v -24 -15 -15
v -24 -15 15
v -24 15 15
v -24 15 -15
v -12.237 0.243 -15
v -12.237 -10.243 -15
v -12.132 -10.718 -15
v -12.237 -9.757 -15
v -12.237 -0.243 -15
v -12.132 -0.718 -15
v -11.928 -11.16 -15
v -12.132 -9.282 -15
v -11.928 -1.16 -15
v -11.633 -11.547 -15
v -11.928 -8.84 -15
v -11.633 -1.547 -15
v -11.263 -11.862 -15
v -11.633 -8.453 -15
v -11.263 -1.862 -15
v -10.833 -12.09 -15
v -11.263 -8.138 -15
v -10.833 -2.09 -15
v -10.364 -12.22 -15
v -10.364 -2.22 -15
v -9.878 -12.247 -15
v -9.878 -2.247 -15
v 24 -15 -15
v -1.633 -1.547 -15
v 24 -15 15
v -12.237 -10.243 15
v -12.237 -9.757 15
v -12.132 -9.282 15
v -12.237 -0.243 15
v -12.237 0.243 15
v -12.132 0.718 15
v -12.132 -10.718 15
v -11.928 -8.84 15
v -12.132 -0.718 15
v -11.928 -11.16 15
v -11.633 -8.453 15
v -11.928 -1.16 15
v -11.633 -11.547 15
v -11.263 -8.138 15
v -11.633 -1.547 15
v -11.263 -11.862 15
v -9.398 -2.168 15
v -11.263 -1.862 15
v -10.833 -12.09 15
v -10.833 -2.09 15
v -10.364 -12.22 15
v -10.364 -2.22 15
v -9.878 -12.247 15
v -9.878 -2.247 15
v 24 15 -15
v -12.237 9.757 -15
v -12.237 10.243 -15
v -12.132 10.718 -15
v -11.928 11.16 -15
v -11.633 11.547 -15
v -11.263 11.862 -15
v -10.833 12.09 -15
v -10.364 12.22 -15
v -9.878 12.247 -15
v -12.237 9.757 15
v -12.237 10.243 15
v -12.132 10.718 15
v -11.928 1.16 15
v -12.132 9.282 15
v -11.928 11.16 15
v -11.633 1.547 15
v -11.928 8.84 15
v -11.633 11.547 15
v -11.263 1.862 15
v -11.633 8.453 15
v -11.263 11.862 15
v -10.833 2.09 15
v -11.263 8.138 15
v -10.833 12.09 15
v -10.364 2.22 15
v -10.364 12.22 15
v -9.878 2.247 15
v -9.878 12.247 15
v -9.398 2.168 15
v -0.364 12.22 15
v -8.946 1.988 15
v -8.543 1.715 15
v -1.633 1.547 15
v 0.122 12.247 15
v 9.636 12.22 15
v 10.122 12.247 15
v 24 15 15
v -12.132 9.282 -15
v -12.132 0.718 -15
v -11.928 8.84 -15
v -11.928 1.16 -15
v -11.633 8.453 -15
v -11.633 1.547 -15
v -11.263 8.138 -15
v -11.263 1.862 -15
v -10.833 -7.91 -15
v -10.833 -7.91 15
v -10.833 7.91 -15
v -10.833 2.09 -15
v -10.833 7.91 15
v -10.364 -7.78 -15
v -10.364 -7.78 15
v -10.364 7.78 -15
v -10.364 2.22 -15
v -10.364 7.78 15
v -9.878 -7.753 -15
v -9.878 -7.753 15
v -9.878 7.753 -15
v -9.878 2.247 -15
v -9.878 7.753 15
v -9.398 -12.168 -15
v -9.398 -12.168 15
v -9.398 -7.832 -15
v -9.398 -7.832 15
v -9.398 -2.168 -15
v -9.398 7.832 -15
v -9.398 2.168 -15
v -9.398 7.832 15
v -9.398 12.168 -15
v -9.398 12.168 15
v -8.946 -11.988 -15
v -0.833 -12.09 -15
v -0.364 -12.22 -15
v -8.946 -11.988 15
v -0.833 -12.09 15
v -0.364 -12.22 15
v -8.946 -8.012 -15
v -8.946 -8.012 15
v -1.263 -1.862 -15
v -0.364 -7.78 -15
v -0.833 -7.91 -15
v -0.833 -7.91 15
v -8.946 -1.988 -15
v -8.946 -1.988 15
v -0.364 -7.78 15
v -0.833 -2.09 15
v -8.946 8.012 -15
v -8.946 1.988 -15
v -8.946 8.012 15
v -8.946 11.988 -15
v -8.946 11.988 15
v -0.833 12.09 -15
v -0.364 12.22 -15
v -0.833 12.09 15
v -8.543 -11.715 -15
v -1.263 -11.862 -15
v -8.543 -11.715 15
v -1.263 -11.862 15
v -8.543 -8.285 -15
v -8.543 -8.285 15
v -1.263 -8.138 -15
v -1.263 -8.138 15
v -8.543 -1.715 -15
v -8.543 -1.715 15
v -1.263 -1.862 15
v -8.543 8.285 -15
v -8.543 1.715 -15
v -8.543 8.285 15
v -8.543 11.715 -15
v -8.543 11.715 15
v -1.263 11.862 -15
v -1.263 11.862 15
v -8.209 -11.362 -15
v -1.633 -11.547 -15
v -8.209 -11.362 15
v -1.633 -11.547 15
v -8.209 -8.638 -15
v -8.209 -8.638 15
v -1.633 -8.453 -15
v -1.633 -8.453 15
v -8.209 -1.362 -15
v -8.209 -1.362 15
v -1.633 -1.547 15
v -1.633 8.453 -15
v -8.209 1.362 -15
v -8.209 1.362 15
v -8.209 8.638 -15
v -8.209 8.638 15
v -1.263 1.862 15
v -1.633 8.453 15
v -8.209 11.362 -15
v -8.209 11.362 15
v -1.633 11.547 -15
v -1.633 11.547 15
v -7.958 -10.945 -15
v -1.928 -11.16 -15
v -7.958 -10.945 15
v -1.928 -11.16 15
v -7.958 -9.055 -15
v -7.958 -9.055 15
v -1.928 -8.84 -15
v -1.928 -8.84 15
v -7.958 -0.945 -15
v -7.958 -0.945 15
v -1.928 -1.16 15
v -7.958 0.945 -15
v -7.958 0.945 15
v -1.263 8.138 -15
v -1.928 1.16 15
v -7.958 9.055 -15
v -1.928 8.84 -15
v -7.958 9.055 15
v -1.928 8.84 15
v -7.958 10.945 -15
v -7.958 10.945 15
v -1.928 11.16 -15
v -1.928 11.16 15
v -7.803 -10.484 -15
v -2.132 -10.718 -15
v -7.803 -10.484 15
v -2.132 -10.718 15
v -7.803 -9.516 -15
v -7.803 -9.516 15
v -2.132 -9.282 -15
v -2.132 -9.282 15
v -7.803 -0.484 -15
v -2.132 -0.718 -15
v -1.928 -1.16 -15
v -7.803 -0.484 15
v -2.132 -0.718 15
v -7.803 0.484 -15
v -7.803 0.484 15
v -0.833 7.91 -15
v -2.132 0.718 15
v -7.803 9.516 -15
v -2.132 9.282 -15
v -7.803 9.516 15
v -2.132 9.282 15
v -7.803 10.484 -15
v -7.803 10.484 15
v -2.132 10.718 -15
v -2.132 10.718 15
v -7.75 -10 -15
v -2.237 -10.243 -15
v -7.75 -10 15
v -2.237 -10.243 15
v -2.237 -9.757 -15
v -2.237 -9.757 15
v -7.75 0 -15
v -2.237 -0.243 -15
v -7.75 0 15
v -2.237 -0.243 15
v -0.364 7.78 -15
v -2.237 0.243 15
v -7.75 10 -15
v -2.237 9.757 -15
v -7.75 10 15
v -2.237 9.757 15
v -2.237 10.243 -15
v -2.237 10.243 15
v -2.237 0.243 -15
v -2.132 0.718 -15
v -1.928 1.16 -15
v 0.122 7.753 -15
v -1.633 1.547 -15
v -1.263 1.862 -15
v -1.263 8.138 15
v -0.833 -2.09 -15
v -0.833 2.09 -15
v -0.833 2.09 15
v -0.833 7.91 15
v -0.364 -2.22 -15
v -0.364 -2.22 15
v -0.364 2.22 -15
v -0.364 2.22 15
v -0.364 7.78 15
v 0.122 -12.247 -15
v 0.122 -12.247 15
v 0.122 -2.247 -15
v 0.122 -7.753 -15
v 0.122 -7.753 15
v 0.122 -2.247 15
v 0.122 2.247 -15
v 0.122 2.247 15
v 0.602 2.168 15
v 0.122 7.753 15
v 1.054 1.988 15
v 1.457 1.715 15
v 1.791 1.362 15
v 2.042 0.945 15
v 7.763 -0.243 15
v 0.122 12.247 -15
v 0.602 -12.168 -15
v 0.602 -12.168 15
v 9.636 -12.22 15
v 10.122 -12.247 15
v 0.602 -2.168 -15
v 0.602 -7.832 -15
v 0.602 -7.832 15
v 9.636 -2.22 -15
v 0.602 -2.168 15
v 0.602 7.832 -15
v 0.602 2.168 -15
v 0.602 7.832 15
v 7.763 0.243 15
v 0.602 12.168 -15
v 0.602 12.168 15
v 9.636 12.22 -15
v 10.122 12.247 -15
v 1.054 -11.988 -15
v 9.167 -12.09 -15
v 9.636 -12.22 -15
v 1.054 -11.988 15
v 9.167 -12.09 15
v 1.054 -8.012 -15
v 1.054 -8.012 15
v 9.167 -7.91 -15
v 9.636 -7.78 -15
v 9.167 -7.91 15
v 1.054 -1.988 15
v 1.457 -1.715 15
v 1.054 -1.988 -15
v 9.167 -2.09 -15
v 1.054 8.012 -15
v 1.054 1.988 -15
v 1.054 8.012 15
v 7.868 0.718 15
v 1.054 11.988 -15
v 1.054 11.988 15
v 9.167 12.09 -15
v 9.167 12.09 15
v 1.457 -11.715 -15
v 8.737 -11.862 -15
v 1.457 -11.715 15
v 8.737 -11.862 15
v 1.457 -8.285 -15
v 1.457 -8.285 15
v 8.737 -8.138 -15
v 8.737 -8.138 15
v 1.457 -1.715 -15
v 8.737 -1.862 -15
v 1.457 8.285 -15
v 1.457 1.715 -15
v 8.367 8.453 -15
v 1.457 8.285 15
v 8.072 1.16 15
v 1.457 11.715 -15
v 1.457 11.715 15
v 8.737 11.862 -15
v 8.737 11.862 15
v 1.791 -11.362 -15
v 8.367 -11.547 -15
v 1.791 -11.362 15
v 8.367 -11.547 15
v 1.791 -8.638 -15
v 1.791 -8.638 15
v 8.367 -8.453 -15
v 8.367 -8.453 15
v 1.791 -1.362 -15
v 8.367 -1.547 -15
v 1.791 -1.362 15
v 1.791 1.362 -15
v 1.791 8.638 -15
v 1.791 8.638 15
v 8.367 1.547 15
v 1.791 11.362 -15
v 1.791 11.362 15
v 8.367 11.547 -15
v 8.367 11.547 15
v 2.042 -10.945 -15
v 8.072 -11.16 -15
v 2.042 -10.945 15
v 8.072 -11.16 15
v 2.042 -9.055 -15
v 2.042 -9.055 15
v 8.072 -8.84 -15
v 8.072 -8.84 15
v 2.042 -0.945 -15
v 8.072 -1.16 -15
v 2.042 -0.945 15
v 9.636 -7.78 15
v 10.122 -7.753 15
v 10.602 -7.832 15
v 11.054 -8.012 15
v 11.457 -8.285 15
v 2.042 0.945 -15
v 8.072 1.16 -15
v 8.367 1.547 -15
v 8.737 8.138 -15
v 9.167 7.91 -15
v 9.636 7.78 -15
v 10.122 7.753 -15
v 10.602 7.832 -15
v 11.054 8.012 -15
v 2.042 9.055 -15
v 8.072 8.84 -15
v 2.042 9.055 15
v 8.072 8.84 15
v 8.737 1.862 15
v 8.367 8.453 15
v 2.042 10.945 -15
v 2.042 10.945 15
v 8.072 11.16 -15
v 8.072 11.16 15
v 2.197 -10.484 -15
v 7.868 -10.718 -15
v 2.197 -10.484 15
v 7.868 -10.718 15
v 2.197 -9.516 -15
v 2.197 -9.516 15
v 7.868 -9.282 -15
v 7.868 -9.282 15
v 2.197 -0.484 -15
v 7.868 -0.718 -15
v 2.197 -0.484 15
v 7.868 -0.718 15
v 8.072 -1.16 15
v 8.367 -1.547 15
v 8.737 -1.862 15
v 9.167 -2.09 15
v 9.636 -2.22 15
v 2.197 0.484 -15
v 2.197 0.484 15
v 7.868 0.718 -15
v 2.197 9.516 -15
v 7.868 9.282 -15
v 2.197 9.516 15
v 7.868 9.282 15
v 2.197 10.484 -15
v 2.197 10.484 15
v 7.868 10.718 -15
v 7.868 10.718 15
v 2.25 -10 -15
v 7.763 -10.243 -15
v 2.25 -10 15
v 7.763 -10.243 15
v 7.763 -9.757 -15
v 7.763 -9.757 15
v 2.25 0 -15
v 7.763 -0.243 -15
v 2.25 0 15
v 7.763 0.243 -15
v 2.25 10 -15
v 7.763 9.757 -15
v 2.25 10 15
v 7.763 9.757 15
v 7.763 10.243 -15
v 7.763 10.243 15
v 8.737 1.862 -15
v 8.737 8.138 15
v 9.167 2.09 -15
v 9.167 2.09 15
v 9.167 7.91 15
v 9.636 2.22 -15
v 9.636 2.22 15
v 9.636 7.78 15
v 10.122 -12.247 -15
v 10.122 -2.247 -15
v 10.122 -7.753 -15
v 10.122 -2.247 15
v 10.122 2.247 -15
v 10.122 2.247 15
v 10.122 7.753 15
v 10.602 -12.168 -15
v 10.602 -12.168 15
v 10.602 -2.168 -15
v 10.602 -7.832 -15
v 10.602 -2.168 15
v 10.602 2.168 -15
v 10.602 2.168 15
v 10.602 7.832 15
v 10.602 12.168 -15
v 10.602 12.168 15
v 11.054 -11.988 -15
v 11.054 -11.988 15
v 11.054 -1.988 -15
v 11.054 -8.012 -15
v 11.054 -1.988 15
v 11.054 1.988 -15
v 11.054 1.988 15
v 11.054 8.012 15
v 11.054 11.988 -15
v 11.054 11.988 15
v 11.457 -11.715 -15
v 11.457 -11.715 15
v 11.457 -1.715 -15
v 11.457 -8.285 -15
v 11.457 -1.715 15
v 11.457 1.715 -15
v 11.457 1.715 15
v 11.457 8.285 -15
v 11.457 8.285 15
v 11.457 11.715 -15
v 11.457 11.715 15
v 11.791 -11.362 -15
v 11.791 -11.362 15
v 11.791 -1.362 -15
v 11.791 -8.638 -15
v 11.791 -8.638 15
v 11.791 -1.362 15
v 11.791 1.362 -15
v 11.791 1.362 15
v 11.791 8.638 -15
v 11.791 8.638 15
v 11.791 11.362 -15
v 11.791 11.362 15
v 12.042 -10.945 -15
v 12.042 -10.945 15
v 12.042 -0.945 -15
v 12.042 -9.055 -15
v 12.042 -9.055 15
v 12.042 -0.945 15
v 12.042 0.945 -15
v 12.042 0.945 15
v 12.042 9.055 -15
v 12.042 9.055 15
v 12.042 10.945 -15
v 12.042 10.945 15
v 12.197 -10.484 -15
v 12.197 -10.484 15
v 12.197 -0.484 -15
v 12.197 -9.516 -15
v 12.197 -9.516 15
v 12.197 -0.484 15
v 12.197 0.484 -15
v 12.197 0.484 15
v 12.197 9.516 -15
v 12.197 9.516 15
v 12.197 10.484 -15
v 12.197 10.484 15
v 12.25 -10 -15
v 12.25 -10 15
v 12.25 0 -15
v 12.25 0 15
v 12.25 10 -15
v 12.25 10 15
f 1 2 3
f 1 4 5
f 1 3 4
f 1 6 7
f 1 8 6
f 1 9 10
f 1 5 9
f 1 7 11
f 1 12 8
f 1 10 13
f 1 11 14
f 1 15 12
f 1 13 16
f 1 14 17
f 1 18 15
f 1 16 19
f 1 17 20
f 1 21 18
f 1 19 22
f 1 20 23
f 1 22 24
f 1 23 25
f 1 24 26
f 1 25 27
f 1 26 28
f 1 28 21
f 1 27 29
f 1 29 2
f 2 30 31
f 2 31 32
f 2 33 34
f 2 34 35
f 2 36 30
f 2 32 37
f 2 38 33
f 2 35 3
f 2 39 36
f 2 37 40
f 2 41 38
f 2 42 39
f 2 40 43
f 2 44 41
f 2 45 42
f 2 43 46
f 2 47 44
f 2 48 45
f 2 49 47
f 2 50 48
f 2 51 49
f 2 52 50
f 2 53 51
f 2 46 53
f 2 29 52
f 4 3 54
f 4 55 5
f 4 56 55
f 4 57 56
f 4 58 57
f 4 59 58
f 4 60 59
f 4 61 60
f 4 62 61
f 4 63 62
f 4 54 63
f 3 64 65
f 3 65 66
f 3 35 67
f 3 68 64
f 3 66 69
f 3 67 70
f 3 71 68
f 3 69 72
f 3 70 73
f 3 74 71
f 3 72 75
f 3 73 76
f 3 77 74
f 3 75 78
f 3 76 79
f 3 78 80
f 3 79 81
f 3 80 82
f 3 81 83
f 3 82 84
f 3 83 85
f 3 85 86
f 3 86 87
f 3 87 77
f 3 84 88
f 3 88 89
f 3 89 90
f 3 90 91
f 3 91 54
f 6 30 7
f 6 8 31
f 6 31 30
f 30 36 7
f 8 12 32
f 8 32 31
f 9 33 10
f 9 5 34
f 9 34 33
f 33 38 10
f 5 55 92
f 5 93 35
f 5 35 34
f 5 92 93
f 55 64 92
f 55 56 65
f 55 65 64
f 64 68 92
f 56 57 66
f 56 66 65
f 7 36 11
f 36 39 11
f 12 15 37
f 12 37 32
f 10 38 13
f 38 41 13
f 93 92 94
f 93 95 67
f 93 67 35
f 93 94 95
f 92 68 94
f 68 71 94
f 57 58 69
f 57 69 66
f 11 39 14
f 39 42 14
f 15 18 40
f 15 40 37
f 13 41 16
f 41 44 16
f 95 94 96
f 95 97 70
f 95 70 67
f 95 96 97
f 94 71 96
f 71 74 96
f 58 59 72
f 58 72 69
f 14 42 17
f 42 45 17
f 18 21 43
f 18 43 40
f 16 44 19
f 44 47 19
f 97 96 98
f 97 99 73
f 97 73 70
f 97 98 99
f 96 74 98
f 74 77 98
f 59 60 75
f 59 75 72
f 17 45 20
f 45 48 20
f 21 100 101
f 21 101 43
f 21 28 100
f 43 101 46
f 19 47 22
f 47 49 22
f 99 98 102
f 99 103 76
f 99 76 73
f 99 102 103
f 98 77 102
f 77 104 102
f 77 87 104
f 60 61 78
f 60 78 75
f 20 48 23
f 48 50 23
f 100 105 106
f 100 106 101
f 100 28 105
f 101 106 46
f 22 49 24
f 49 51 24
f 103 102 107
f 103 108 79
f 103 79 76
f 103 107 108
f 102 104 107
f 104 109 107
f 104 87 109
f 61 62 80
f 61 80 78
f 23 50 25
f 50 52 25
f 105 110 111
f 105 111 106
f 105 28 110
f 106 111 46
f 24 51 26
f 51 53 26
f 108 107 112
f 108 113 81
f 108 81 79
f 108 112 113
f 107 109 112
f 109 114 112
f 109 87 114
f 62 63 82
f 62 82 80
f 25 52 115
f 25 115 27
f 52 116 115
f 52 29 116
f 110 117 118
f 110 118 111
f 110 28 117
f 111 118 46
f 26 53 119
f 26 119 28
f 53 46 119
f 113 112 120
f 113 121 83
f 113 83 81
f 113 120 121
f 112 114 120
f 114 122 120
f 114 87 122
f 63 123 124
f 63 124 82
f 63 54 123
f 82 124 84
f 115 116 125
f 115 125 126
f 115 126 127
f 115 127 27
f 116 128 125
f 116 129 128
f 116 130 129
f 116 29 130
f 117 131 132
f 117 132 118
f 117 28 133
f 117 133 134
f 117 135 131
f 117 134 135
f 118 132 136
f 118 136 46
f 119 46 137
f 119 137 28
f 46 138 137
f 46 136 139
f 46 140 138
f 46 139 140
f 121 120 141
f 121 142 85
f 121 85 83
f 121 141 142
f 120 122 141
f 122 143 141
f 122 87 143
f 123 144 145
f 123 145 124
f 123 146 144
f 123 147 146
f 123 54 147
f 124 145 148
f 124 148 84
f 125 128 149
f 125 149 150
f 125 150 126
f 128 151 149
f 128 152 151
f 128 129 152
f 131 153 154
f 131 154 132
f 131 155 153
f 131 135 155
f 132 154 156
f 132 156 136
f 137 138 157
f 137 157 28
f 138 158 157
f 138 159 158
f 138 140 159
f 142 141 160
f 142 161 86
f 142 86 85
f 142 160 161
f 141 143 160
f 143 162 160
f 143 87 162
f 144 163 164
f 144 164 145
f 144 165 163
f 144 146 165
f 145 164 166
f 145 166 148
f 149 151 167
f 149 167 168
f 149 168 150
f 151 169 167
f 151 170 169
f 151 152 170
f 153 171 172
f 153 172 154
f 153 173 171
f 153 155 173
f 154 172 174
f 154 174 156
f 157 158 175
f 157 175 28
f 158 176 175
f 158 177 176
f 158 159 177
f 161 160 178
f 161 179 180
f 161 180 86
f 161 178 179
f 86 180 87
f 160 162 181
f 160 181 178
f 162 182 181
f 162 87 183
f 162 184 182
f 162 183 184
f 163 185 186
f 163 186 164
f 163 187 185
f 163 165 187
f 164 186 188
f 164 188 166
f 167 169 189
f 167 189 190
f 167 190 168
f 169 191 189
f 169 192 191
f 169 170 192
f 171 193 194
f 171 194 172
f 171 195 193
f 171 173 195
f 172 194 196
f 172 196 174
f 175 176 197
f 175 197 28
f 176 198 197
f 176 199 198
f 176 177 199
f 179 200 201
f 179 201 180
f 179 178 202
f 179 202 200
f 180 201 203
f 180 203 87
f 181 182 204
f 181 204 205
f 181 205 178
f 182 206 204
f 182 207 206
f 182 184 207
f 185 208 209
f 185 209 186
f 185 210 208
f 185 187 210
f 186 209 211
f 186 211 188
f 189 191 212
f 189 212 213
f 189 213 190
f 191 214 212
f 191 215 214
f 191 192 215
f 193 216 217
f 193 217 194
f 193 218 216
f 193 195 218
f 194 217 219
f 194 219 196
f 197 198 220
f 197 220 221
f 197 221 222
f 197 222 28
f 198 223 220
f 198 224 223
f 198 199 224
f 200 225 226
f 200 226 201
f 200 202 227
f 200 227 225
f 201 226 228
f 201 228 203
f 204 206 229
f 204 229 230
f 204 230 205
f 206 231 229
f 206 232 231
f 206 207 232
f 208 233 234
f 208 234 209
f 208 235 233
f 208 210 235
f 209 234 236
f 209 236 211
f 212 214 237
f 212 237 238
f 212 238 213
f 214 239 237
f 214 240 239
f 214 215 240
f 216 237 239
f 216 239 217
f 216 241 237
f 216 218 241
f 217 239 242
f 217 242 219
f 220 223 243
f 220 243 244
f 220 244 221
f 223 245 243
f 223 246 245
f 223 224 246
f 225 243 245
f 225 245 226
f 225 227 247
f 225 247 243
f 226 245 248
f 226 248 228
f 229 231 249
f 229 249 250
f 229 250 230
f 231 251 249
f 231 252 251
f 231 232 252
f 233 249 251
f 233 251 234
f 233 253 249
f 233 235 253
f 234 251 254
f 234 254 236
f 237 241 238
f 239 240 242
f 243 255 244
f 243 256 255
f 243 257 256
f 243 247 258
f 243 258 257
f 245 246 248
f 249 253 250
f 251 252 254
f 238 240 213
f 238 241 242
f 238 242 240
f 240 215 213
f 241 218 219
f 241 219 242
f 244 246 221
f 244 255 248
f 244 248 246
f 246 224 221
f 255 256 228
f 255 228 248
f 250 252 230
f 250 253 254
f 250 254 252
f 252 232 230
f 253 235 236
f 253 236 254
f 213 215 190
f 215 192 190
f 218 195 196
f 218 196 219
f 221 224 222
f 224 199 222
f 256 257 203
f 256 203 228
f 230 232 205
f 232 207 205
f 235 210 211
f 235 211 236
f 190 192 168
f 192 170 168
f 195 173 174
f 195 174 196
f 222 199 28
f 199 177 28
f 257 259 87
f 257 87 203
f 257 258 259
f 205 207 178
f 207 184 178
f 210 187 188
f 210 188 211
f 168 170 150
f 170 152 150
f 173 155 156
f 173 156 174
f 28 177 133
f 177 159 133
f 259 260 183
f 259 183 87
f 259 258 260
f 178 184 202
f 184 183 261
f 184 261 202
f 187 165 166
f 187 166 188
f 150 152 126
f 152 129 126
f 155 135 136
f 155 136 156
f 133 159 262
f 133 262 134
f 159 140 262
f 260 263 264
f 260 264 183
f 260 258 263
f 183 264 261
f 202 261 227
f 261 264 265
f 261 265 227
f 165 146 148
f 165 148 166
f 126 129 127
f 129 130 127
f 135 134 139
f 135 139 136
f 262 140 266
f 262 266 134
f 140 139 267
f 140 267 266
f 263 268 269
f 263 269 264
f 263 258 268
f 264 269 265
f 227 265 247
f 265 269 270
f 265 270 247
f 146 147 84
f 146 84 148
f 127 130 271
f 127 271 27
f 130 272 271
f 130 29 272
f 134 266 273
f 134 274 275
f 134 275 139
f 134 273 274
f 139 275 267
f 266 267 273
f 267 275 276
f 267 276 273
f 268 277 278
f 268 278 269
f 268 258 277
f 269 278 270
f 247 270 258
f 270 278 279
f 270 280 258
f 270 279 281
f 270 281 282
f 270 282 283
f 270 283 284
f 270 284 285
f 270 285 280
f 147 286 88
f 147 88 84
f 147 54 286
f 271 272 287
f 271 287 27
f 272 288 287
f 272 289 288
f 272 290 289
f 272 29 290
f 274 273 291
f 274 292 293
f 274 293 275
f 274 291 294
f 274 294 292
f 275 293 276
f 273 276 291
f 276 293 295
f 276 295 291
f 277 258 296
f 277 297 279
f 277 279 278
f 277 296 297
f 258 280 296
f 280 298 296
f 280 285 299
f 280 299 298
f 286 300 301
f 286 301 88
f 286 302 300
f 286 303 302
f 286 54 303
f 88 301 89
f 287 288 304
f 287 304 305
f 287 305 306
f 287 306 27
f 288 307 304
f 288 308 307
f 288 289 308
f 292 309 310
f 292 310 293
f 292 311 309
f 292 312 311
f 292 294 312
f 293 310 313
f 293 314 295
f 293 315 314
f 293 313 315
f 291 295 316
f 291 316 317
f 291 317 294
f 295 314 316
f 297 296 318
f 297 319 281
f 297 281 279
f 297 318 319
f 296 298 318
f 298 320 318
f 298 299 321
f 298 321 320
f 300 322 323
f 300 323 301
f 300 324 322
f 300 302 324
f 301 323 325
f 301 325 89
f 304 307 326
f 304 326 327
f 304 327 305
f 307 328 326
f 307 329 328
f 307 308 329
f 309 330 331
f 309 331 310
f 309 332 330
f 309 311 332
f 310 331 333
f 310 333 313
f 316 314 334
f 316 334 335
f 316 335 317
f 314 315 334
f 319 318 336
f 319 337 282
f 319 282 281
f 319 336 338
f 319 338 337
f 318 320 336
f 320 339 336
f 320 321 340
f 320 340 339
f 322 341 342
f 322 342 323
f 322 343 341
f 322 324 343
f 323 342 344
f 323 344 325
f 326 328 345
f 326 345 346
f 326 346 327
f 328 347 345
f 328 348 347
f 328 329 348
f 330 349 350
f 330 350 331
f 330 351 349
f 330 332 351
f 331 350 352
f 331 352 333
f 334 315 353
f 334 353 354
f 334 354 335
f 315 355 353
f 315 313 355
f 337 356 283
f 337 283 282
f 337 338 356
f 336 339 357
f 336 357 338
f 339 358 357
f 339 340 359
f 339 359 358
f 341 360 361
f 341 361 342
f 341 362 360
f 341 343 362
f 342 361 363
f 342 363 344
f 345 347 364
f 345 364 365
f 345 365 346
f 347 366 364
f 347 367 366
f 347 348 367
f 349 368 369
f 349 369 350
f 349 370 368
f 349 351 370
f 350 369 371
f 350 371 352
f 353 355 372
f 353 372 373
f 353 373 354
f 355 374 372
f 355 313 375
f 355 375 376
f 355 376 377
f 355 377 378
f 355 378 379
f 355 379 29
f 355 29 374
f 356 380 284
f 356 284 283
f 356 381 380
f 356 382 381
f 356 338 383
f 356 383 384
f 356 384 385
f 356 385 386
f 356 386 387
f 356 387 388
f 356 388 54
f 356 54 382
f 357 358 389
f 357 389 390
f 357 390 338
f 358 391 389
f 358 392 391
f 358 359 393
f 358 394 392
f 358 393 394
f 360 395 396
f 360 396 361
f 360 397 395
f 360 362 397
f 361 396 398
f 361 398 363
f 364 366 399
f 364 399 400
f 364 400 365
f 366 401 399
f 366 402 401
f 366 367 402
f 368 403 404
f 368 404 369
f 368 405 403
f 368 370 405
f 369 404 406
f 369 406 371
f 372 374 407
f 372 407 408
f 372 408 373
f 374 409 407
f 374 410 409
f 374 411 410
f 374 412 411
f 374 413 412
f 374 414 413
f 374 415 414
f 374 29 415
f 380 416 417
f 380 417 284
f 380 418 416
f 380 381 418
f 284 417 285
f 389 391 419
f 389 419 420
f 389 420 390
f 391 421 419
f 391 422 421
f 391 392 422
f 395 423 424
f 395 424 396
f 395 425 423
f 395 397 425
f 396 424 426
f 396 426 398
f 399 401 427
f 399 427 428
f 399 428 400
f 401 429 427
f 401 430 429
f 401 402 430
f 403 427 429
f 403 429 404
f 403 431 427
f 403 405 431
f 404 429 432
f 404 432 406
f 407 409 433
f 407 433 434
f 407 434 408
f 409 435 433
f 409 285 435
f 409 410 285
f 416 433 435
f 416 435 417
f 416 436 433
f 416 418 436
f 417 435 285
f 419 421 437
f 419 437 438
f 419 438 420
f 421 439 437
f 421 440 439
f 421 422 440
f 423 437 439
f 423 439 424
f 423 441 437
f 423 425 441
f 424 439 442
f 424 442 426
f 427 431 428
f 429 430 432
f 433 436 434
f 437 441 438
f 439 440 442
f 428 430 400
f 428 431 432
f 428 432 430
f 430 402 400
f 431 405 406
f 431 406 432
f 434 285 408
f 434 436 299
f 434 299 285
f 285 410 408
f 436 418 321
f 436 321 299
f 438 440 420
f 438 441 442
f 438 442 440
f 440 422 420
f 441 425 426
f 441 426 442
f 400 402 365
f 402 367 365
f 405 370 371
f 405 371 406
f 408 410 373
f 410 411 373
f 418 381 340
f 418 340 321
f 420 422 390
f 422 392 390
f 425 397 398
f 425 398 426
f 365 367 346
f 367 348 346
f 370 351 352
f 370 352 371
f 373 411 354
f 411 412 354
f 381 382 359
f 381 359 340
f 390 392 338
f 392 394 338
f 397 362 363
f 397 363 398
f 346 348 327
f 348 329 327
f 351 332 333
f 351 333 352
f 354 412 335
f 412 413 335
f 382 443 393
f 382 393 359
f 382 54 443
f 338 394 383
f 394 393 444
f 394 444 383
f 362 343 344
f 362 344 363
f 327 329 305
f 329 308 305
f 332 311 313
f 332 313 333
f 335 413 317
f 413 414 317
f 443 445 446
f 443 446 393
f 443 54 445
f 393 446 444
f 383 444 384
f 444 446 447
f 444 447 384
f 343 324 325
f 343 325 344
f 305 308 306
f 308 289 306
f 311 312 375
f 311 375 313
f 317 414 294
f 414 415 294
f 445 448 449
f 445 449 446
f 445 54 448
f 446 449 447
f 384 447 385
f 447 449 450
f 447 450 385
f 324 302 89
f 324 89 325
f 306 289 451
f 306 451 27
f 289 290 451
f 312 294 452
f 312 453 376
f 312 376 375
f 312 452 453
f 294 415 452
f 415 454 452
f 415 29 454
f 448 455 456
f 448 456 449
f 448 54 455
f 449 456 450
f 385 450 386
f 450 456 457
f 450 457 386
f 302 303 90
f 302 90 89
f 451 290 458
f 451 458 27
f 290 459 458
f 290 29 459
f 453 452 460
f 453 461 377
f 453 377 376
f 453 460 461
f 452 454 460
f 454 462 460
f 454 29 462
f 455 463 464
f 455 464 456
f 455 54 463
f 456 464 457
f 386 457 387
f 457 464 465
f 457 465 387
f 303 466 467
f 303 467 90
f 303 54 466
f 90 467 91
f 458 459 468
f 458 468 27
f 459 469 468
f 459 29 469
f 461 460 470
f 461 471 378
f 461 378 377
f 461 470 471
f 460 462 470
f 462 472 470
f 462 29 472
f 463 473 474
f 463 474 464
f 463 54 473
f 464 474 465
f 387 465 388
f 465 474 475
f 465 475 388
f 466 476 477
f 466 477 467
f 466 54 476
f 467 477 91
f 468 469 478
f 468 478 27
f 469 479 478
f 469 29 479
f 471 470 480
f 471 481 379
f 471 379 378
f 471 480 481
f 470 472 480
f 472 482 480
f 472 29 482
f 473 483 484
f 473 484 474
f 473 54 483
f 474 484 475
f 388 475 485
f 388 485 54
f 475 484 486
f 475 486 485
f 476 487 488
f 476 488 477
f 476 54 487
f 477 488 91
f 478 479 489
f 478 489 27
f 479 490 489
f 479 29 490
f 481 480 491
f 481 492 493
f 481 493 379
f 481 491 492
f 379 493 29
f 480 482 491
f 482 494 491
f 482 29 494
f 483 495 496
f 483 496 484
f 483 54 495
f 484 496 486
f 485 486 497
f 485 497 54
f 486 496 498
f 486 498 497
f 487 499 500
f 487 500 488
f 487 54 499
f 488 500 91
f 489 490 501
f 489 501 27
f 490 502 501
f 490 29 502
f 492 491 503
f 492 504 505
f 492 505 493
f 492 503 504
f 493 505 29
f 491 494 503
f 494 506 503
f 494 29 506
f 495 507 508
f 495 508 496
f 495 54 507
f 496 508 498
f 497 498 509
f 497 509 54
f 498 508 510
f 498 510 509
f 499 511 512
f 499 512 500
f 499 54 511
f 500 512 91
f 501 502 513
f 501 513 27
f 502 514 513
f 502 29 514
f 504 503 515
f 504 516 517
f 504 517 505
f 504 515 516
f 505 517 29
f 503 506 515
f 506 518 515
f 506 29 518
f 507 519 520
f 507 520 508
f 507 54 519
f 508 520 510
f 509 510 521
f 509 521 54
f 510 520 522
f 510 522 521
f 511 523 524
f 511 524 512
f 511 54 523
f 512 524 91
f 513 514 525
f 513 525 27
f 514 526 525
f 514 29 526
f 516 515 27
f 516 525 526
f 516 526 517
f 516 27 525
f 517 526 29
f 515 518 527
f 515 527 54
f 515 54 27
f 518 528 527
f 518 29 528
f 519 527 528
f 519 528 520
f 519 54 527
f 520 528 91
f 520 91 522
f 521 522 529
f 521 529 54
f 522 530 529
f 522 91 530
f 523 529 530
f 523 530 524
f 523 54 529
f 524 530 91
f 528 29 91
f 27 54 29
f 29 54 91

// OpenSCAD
$fs=1/2;
width=48;
height=30;
depth=30;
hole=4.5;
raster=10;
startx=-(width/2-hole)+(width/2-hole)%raster;
starty=-(depth/2-hole)+(depth/2-hole)%raster;
difference() {
  cube([width,depth,height],center=true);
  for (x=[startx:raster:width/2-hole]) for (y=[starty:raster:depth/2-hole]) translate([x,y,0])cylinder(h=height+1,d=hole,center=true);
}
